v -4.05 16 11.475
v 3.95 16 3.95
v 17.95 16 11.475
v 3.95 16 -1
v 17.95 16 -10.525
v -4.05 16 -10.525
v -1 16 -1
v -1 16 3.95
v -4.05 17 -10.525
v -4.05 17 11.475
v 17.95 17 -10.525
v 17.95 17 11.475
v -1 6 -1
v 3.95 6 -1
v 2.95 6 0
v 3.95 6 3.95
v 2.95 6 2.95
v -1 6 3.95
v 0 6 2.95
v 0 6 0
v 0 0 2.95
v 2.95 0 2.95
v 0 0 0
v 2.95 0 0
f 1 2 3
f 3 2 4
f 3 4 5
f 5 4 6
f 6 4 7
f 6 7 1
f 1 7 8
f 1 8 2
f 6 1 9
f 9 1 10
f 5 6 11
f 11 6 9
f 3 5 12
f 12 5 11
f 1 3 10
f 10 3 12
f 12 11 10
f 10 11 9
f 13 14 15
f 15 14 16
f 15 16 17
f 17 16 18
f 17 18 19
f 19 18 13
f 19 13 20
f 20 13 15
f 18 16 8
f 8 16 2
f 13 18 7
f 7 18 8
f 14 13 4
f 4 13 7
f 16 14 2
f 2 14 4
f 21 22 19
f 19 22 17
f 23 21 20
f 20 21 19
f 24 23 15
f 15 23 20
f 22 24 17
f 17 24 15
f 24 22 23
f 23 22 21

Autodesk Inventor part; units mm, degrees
ref_plane "YZ Plane" through (0, 0, 0) normal (1, 0, 0) x (0, 1, 0)
ref_plane "XZ Plane" through (0, 0, 0) normal (0, 1, 0) x (-1, 0, 0)
ref_plane "XY Plane" through (0, 0, 0) normal (0, 0, 1) x (1, 0, 0)
sketch "Náčrt1" plane through (0, 0, 0) normal (0, 1, 0) x (-1, 0, 0)
  line L0 (0, 2.95) -> (-2.95, 2.95)
  line L1 (-2.95, 2.95) -> (-2.95, 0)
  line L2 (-2.95, 0) -> (0, 0)
  line L3 (0, 0) -> (0, 2.95)
  dimension "d0" = 2.95
  dimension "d1" = 2.95
extrude "Vysunutí1" add sketch "Náčrt1" along normal blind 6
sketch "Náčrt2" plane through (0, 6, 0) normal (0, 1, 0) x (1, 0, 0)
  line L0 (-1, -3.95) -> (3.95, -3.95)
  line L1 (3.95, -3.95) -> (3.95, 1)
  line L2 (3.95, 1) -> (-1, 1)
  line L3 (-1, 1) -> (-1, -3.95)
  line L4 (0, 0) -> (0, -2.95) projected
  line L5 (0, -2.95) -> (2.95, -2.95) projected
  line L6 (2.95, -2.95) -> (2.95, 0) projected
  line L7 (2.95, 0) -> (0, 0) projected
  dimension "d4" = 1
  dimension "d5" = 1
  dimension "d6" = 1
  dimension "d7" = 1
extrude "Vysunutí2" add sketch "Náčrt2" along normal blind 10 contours L3 L2 L1 L0 | L7 L6 L5 L4
sketch "Náčrt3" plane through (0, 16, 0) normal (0, 1, 0) x (1, 0, 0)
  line L0 (-4.05, 10.525) -> (17.95, 10.525)
  line L1 (17.95, 10.525) -> (17.95, -11.475)
  line L2 (17.95, -11.475) -> (-4.05, -11.475)
  line L3 (-4.05, -11.475) -> (-4.05, 10.525)
  line L4 (3.95, -3.95) -> (3.95, 1) projected
  line L5 (-1, -3.95) -> (3.95, -3.95) projected
  line L6 (3.95, 1) -> (-1, 1) projected
  line L7 (-1, 1) -> (-1, -3.95) projected
  point P0 (0, 0)
  dimension "d10" = 14
  dimension "d11" = 22
  dimension "d12" = 22
  dimension "d13" = 9.525
  dimension "d14" = 7.525
  dimension "d17" = 3.05
extrude "Vysunutí3" add sketch "Náčrt3" along normal blind 1 contours L0 L1 L2 L3 | L5 L7 L6 L4
equation "\"d1\" = d0"
equation "\"d5\" = d4"
equation "\"d6\" = d4"
equation "\"d7\" = d4"
equation "\"d12\" = d11"
properties part number "QRholderSpecial-top"
